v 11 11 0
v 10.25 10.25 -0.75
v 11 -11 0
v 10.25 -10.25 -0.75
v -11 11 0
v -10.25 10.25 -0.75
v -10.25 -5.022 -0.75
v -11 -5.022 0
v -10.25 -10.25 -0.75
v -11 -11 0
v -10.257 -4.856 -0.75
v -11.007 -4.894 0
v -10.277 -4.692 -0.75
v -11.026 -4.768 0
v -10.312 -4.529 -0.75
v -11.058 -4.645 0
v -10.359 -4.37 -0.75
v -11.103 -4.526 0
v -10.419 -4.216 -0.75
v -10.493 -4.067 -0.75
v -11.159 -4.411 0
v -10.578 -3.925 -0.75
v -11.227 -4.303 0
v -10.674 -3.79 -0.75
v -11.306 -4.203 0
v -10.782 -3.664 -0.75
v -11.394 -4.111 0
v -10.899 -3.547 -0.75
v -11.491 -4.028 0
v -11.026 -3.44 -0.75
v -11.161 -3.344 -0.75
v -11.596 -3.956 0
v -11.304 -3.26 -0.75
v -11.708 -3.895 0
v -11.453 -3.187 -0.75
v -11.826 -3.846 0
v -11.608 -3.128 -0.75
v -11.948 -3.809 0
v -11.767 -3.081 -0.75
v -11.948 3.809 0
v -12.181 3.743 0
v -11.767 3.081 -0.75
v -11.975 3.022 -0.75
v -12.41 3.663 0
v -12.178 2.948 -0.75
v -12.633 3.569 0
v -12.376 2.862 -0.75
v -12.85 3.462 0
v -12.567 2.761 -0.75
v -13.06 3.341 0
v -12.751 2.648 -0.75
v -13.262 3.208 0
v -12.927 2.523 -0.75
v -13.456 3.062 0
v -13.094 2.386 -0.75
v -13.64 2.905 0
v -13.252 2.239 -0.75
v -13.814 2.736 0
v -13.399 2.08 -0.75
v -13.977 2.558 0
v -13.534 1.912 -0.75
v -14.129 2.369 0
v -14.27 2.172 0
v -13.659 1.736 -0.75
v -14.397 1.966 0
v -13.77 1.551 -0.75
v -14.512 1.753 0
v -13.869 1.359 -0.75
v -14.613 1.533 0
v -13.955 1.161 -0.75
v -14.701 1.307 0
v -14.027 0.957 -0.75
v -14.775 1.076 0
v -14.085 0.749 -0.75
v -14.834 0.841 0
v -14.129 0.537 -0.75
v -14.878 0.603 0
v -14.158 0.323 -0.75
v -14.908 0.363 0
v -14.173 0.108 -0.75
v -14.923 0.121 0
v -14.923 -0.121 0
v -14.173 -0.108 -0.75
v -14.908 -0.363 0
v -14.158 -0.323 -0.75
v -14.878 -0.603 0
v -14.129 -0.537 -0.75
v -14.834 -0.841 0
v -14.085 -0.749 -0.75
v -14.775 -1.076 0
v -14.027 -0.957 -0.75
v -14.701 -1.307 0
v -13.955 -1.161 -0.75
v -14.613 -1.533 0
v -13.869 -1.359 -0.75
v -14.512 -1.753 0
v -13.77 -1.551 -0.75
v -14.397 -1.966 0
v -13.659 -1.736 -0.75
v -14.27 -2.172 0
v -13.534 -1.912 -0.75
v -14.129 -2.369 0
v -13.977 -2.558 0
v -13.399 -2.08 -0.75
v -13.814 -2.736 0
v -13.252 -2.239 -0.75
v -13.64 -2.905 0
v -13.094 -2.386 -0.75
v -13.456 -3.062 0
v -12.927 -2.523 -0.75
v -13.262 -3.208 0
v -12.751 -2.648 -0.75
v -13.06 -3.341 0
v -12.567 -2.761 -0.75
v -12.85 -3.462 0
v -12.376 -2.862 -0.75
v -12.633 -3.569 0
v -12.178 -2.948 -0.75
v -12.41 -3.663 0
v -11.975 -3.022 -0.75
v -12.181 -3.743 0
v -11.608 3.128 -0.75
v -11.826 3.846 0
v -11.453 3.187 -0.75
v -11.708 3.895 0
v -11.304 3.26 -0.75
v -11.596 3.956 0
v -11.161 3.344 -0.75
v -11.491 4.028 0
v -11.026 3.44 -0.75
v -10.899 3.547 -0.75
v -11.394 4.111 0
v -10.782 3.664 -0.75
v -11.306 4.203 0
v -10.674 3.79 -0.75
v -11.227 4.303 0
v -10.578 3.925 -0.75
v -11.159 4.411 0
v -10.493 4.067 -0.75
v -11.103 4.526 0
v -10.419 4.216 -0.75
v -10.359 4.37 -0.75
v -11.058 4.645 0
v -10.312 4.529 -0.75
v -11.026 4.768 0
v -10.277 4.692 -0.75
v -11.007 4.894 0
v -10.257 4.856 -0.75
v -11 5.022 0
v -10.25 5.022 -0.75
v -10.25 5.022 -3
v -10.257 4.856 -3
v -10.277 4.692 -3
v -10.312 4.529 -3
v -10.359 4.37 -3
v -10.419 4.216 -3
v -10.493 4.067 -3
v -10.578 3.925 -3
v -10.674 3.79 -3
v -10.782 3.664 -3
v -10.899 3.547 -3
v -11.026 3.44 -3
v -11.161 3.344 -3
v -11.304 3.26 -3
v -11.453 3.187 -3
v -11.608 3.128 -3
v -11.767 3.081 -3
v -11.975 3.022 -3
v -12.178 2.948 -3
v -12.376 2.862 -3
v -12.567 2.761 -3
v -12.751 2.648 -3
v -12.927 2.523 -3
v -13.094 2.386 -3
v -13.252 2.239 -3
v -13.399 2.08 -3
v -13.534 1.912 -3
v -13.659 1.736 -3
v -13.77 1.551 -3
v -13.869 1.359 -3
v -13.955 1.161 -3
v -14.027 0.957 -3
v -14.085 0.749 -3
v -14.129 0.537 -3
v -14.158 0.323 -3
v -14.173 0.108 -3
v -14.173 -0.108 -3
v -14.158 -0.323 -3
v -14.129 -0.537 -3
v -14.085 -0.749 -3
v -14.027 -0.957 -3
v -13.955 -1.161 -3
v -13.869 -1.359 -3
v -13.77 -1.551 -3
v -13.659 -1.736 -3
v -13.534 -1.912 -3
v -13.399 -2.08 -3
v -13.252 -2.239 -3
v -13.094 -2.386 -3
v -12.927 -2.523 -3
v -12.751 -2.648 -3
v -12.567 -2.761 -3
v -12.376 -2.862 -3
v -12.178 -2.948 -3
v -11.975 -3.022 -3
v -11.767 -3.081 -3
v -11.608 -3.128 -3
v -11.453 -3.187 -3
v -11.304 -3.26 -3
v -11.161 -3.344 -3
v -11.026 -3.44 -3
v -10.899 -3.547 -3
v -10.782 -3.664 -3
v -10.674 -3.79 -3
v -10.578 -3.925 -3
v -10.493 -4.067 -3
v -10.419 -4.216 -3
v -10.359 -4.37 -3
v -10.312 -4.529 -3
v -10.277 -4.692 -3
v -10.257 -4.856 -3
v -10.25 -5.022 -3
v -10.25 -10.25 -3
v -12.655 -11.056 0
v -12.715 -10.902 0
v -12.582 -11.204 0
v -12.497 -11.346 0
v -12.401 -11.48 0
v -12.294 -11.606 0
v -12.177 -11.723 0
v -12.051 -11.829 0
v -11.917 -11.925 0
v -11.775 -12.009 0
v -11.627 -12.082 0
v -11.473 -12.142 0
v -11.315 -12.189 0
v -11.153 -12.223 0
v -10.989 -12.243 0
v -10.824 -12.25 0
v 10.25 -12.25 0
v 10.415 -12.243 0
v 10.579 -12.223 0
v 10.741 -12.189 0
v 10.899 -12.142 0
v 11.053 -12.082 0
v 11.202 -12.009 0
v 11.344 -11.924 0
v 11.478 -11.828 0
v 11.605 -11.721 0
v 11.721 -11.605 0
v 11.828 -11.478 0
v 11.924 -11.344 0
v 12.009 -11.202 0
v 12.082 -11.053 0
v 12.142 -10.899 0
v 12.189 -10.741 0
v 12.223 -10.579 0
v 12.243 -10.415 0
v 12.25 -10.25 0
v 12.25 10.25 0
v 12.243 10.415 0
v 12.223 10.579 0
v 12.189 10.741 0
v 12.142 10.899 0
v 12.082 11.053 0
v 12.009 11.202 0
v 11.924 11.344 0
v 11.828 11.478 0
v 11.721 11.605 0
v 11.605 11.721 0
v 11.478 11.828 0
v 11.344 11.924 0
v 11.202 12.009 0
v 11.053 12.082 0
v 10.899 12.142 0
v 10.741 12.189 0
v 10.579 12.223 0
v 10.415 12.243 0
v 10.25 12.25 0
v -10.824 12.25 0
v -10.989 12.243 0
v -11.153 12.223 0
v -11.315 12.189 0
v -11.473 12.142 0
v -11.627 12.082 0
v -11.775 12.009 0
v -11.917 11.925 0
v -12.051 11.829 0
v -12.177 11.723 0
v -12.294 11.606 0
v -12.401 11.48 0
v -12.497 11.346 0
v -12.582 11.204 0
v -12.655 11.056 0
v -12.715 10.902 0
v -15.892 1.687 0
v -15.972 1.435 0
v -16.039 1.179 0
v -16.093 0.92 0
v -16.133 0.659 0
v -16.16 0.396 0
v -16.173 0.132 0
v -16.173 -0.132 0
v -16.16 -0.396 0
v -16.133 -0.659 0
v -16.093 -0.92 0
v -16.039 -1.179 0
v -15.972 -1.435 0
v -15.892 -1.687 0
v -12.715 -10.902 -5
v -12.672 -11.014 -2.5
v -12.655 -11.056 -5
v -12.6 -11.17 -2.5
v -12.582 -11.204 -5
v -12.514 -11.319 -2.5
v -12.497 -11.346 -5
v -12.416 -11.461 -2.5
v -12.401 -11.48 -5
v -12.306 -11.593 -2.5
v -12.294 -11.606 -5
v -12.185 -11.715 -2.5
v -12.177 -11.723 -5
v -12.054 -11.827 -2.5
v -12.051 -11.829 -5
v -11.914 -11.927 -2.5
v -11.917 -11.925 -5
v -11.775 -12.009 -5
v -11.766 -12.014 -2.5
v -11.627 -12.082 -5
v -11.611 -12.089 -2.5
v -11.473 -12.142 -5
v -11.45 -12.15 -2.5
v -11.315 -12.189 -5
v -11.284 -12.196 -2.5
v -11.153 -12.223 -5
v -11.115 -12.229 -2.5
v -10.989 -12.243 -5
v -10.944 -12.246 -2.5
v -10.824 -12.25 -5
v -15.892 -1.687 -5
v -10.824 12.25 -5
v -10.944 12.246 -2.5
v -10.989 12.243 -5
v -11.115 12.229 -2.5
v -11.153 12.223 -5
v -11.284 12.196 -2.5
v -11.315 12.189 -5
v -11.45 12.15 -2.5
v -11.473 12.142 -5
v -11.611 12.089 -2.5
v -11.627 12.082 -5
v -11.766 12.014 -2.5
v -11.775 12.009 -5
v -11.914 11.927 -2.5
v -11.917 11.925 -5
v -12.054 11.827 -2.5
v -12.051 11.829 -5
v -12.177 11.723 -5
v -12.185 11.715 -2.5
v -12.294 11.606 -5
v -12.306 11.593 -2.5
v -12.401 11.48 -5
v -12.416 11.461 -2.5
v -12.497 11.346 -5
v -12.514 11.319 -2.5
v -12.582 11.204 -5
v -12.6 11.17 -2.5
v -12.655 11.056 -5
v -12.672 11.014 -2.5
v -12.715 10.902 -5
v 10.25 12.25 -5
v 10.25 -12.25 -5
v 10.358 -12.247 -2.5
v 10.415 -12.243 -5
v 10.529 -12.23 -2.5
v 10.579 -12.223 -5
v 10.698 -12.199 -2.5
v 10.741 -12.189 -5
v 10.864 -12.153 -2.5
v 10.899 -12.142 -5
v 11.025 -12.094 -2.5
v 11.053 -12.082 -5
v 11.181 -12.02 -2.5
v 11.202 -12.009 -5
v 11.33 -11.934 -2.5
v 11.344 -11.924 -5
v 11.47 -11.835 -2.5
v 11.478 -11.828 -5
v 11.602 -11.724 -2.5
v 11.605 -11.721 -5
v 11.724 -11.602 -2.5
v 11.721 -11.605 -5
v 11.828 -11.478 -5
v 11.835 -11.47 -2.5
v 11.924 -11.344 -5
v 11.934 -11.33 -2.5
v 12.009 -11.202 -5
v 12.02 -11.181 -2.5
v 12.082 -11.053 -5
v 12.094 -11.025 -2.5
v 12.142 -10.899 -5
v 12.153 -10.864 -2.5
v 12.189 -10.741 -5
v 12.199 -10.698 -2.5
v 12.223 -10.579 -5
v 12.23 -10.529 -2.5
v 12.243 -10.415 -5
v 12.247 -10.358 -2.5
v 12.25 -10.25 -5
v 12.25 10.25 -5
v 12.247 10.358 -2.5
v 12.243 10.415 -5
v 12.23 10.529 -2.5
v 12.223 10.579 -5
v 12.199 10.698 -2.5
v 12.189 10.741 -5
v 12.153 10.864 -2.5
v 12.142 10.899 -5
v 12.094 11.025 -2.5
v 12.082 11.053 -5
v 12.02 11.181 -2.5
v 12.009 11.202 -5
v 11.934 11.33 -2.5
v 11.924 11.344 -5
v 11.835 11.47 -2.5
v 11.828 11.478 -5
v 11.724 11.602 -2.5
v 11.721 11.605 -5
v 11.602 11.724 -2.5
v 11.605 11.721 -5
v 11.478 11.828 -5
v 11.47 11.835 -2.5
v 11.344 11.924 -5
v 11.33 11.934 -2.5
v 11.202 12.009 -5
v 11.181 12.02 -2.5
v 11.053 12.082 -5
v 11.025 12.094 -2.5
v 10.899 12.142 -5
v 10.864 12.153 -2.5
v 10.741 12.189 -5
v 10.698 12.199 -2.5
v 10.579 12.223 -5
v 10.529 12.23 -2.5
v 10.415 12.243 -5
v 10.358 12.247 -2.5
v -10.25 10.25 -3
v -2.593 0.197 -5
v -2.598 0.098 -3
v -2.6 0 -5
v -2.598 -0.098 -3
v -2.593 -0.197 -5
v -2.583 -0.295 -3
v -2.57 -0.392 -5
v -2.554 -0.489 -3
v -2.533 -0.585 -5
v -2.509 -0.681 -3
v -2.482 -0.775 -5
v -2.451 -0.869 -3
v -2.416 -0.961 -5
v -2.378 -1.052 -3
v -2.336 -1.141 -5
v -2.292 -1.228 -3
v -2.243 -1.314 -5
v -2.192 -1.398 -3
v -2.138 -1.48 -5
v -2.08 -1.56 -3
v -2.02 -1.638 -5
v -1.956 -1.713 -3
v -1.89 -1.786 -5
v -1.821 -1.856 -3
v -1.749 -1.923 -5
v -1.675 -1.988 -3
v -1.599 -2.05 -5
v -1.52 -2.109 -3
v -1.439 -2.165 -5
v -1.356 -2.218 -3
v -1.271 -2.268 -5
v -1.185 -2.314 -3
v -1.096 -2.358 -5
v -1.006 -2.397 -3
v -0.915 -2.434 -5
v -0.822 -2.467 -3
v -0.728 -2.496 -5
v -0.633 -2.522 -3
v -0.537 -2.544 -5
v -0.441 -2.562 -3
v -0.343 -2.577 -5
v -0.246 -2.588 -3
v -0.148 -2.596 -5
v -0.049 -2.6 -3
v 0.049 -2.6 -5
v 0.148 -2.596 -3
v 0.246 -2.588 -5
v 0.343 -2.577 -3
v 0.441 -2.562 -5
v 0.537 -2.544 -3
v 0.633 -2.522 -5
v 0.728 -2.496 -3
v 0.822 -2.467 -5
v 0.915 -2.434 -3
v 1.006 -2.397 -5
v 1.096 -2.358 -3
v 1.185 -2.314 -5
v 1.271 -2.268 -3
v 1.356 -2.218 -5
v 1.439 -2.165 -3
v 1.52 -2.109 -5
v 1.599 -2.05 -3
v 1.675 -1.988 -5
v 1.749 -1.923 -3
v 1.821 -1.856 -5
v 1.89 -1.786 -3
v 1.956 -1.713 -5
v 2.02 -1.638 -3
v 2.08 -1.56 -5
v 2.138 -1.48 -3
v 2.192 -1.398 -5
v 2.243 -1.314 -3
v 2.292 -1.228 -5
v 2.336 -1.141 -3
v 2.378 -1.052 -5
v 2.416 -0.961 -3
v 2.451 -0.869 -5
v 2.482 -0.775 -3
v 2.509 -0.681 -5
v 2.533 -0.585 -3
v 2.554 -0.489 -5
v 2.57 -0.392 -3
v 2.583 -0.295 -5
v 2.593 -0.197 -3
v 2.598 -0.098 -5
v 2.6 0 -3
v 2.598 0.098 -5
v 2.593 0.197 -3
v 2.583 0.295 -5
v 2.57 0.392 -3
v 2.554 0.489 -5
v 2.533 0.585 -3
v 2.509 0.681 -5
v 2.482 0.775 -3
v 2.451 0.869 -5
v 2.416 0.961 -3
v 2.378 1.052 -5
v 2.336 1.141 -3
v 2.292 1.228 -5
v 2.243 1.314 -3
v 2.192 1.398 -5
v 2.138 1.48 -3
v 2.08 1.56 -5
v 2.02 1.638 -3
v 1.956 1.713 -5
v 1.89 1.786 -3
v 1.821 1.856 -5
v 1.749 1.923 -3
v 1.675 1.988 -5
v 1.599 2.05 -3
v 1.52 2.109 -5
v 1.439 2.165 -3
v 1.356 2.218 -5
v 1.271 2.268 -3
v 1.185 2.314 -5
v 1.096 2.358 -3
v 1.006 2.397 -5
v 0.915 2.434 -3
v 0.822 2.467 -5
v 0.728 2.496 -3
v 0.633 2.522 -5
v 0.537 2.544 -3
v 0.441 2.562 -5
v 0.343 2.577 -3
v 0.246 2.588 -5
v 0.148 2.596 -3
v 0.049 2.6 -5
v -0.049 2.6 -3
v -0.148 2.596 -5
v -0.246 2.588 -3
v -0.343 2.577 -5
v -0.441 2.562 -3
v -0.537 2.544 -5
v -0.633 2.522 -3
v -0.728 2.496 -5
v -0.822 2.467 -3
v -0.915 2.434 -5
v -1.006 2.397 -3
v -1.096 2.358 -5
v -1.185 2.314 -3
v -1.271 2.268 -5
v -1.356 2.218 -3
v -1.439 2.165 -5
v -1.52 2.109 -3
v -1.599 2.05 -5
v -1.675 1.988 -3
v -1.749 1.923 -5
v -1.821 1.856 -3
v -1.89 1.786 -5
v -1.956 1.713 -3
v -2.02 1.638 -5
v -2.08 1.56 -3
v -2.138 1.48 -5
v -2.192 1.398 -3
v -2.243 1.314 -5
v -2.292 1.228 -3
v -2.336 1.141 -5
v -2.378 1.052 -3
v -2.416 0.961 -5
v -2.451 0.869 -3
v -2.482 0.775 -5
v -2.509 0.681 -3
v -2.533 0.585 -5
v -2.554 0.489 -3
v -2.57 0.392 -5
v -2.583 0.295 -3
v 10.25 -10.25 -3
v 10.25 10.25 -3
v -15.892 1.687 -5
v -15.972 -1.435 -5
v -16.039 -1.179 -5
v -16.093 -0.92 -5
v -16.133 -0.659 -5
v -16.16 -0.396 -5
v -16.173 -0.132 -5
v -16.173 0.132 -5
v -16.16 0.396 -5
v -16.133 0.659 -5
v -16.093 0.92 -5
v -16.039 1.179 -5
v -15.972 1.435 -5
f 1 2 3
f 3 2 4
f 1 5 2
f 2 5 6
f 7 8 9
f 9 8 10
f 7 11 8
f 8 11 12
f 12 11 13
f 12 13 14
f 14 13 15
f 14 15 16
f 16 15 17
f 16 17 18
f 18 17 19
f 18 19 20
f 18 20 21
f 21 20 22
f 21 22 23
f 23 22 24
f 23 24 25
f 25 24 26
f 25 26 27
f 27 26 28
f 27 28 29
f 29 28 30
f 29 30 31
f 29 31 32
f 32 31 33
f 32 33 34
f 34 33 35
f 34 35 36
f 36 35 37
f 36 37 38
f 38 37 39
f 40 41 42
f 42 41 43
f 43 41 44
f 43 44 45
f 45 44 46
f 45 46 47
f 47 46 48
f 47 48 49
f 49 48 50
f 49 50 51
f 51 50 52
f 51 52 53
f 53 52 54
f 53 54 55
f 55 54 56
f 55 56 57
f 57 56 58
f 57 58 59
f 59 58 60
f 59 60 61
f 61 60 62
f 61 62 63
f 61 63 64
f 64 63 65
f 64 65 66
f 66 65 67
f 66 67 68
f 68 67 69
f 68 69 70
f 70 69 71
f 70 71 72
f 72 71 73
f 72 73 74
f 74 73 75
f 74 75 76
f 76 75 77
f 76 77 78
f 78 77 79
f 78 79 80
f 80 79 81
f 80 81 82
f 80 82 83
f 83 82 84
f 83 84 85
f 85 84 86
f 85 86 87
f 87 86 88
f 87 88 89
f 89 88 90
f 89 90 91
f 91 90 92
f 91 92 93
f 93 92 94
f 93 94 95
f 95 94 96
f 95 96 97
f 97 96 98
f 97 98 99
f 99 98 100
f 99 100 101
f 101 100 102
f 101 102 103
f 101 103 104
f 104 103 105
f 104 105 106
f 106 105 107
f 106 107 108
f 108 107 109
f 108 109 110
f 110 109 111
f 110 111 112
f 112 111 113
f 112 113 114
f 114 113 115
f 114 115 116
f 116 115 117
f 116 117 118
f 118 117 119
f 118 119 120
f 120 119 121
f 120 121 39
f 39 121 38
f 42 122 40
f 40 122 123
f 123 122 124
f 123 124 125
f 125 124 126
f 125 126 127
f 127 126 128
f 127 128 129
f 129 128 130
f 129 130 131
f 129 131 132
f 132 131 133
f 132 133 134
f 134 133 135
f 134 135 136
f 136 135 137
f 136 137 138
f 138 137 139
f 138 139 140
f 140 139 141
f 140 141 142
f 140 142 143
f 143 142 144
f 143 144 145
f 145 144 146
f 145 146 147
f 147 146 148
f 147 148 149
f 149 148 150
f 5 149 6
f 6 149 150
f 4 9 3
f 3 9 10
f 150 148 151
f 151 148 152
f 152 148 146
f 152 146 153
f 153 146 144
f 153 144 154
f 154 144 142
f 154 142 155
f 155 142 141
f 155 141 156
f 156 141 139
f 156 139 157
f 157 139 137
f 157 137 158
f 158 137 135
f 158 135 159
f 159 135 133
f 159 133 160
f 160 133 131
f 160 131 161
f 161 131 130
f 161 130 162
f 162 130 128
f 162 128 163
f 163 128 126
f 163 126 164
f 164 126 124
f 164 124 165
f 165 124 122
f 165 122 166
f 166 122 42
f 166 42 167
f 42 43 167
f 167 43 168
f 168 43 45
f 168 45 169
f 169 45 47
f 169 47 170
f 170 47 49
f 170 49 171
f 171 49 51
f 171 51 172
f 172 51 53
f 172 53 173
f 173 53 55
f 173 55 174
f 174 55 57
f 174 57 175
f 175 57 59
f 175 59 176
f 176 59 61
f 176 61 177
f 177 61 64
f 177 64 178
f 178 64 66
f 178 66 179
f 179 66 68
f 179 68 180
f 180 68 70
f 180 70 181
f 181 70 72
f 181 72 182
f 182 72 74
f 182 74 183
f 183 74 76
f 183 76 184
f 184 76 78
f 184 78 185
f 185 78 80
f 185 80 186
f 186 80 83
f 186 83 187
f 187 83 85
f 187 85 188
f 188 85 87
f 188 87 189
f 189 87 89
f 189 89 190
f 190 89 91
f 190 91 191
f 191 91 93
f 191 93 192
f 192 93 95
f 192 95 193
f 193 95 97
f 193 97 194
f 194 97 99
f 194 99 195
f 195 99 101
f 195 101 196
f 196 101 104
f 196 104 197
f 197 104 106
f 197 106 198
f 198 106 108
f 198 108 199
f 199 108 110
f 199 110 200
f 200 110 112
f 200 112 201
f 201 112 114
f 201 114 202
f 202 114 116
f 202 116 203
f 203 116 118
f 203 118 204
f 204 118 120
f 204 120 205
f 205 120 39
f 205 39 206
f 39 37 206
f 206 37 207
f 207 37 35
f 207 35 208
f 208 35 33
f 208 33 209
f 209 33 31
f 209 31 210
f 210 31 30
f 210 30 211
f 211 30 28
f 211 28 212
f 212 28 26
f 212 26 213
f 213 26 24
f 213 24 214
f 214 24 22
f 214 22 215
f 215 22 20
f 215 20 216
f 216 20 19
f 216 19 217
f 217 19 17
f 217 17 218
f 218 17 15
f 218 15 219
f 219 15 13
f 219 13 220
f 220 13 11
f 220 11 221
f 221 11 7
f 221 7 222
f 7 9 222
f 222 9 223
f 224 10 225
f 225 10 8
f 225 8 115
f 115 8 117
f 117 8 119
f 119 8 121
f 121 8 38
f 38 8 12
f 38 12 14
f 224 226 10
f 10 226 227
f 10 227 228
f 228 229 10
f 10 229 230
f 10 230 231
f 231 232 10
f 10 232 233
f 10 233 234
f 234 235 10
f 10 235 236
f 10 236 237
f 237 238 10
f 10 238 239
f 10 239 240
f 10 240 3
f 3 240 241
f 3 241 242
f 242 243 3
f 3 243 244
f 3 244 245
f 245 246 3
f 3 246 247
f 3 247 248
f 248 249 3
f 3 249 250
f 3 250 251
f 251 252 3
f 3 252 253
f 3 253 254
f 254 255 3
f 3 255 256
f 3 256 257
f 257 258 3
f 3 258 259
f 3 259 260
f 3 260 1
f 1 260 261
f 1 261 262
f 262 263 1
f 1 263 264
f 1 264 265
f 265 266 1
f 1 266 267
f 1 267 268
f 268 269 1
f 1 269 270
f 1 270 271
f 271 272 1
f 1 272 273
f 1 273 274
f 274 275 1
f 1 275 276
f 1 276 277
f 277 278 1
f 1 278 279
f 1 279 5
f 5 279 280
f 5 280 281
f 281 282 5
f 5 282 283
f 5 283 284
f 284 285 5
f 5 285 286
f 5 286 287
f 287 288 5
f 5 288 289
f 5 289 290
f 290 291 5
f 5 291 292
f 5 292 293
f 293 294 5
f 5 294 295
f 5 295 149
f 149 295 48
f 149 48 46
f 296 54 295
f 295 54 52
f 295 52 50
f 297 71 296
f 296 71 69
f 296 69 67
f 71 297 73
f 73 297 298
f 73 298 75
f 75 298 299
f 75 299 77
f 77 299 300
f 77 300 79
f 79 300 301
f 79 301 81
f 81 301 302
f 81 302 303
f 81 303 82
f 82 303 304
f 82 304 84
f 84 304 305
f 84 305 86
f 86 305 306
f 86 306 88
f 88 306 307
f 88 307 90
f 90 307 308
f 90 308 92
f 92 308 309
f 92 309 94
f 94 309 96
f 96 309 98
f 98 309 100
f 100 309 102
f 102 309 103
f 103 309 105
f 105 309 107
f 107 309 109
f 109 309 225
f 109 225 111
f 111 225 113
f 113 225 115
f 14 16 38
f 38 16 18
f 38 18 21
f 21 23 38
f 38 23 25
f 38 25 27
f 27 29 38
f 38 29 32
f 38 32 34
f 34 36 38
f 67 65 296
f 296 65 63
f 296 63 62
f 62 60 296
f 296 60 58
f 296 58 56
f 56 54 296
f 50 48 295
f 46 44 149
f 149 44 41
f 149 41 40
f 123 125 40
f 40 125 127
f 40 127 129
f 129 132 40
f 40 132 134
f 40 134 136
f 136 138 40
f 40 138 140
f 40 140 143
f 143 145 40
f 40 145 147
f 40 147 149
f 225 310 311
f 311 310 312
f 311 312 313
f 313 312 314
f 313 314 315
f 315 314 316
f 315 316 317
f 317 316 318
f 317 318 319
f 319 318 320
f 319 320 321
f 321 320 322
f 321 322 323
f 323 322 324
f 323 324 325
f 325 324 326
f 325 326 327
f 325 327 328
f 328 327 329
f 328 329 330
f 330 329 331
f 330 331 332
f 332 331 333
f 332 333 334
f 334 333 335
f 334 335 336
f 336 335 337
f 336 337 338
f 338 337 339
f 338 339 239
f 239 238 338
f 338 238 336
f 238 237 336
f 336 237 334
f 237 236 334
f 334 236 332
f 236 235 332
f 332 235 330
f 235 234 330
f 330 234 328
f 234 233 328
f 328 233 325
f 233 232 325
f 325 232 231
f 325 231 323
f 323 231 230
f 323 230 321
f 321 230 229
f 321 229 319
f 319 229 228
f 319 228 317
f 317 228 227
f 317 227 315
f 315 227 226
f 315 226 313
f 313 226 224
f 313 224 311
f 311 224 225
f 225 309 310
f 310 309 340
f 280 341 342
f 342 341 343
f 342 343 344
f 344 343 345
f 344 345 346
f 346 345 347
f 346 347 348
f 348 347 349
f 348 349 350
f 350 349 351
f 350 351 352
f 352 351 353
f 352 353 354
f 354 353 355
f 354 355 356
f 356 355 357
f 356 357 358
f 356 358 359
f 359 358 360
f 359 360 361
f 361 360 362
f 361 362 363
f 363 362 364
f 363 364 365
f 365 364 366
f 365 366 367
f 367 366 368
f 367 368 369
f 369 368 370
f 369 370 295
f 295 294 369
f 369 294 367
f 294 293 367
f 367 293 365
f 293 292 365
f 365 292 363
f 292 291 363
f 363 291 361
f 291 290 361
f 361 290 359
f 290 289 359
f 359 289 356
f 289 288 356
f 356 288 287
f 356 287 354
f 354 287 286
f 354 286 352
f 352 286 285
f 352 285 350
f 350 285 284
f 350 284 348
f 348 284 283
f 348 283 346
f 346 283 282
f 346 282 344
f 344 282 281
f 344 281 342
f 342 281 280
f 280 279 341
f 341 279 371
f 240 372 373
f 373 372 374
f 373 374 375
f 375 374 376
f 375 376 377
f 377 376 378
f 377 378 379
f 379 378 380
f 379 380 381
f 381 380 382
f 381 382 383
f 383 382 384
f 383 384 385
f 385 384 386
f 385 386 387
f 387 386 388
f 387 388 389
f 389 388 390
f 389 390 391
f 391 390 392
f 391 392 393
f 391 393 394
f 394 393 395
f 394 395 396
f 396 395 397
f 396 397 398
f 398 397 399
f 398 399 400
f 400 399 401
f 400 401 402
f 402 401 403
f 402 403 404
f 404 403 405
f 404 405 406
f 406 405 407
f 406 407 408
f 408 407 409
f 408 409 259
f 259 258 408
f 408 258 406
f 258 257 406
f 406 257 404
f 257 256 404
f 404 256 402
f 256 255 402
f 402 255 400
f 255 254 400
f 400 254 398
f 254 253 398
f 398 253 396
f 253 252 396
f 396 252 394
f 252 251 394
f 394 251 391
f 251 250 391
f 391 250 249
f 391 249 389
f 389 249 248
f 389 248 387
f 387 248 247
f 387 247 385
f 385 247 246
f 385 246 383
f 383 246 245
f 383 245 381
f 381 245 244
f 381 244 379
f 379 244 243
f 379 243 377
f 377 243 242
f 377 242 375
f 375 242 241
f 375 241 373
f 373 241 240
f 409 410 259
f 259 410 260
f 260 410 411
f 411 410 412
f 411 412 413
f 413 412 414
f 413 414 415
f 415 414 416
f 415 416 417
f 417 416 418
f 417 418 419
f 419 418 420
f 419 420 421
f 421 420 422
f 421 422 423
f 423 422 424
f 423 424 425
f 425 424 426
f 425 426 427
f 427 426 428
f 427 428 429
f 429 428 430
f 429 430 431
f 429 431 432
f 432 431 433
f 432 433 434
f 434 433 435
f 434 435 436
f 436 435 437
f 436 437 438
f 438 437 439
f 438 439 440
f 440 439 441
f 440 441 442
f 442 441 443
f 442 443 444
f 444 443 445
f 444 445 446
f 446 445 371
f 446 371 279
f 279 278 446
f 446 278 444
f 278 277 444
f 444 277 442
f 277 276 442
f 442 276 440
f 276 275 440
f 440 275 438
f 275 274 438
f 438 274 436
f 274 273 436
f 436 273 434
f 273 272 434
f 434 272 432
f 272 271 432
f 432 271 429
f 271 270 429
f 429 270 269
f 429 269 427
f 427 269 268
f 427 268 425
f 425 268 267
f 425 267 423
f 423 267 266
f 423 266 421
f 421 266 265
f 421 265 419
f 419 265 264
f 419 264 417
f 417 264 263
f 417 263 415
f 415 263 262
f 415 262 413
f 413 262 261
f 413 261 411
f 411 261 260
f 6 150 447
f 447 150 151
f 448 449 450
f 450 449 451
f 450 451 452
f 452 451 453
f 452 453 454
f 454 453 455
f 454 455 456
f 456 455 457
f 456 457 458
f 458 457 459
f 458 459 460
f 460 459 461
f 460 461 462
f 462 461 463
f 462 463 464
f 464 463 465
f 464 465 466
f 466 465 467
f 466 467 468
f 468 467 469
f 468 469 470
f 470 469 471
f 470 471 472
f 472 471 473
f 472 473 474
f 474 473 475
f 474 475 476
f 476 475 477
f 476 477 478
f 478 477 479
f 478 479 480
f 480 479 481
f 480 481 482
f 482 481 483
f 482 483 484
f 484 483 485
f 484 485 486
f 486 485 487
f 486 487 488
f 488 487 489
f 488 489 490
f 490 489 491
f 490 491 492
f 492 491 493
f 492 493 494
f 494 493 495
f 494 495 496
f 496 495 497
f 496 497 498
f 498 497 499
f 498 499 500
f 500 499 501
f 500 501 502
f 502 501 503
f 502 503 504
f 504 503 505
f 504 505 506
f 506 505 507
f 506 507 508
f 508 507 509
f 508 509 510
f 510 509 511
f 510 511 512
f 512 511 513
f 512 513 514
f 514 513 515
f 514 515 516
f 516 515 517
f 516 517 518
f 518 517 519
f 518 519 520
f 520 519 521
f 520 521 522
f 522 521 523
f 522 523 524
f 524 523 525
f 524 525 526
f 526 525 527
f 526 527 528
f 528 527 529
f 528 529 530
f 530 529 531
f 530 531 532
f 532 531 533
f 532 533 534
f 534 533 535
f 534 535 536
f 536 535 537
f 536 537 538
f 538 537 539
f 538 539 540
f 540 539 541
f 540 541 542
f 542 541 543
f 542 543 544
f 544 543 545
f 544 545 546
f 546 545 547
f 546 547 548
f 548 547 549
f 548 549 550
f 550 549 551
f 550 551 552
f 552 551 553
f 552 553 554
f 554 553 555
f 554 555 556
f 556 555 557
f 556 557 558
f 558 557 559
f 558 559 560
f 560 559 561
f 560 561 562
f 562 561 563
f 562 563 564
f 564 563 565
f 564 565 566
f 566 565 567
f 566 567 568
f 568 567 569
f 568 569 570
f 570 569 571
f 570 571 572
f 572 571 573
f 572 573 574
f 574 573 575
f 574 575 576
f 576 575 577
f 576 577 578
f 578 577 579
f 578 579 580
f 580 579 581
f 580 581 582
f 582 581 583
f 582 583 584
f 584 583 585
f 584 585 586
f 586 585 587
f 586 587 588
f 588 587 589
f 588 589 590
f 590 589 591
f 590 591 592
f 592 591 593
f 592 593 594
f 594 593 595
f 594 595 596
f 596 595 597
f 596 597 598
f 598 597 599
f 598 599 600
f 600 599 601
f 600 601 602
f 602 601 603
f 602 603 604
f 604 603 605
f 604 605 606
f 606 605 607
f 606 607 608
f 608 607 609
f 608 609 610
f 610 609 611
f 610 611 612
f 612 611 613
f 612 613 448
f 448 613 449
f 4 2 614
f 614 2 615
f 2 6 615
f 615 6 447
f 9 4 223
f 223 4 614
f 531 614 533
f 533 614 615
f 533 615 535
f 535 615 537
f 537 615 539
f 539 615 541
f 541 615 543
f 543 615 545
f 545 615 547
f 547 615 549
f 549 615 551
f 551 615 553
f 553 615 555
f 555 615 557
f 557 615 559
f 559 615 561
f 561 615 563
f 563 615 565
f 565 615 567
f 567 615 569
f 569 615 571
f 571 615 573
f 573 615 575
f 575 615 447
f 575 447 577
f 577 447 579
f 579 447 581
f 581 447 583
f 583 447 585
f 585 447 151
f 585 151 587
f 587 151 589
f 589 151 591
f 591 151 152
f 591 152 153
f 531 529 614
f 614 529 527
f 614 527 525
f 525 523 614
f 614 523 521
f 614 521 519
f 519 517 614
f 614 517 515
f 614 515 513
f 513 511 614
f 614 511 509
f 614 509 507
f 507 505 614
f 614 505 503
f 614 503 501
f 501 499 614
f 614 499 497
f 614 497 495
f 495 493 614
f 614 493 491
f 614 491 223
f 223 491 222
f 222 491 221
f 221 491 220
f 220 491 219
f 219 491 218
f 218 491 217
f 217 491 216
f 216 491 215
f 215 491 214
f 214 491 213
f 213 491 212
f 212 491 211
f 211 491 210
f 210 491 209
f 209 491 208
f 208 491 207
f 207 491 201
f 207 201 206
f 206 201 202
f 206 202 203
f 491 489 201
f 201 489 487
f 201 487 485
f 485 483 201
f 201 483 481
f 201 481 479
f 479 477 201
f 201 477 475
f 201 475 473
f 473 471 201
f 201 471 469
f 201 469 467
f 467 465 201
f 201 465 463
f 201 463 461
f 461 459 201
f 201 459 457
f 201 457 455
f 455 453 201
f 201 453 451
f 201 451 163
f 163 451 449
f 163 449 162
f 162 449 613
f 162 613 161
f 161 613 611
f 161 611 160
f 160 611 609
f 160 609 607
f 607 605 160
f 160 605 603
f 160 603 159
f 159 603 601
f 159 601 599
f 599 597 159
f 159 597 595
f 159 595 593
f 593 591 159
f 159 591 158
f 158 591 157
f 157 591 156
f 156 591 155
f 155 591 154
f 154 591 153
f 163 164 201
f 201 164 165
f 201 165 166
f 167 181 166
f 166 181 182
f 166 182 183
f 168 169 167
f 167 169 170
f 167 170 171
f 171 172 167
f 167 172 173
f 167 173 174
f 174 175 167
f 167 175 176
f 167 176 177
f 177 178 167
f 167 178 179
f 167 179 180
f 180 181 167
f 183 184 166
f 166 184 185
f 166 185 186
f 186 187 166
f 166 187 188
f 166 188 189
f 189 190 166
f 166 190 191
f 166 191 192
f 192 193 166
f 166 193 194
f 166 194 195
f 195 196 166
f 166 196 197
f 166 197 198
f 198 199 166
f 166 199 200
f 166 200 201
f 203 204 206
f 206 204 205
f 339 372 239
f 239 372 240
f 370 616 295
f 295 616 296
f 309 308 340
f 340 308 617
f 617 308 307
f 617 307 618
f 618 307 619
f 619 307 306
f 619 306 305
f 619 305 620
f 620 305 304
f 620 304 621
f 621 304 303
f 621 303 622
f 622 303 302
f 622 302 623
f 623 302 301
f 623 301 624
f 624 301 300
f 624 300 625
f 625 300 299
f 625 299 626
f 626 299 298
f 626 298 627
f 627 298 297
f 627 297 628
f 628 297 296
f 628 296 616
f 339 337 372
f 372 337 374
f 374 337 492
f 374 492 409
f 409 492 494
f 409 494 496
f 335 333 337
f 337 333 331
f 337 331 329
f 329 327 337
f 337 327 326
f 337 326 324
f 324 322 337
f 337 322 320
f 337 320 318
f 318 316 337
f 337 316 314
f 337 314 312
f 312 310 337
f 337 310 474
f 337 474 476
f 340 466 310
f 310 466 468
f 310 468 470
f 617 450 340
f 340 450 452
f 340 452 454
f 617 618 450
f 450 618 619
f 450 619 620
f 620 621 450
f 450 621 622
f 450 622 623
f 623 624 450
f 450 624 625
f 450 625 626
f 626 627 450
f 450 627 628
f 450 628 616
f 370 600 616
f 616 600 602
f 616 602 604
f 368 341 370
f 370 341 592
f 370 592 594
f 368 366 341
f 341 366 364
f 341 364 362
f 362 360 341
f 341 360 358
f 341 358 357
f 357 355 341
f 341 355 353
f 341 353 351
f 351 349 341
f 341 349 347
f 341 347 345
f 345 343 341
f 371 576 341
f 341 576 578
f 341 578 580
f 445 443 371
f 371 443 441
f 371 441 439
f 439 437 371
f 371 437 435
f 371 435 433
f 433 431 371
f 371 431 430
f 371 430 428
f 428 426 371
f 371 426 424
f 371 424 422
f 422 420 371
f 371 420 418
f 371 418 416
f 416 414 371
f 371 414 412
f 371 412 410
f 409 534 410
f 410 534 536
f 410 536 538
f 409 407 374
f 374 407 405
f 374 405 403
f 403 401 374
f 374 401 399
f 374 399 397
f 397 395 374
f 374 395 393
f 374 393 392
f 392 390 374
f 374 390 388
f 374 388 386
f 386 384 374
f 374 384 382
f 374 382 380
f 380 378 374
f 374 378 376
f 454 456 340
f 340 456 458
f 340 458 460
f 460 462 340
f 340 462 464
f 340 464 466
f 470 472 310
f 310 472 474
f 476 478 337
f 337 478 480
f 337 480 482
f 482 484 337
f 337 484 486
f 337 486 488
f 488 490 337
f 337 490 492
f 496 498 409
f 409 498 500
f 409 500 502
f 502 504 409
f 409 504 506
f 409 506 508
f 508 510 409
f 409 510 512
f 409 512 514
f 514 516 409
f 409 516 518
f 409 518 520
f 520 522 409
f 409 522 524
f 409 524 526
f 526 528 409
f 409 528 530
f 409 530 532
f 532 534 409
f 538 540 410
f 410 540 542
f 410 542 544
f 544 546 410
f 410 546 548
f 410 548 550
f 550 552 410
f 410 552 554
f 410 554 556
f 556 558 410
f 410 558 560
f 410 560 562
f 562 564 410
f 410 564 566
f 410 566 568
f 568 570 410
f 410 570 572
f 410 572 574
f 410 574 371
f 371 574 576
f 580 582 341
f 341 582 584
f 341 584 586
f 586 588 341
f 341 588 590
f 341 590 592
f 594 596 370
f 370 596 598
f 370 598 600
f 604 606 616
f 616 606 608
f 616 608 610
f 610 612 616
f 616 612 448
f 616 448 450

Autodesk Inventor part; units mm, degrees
ref_plane "YZ Plane" through (0, 0, 0) normal (1, 0, 0) x (0, 1, 0)
ref_plane "XZ Plane" through (0, 0, 0) normal (0, 1, 0) x (-1, 0, 0)
ref_plane "XY Plane" through (0, 0, 0) normal (0, 0, 1) x (1, 0, 0)
sketch "Sketch1" plane through (0, 0, 0) normal (0, 0, 1) x (1, 0, 0)
  line L0 (-10.25, -10.25) -> (10.25, -10.25)
  line L1 (10.25, -10.25) -> (10.25, 10.25)
  line L2 (10.25, 10.25) -> (-10.25, 10.25)
  line L3 (-10.25, 10.25) -> (-10.25, -10.25)
  line L4 (-10.25, -10.25) -> (10.25, 10.25) construction
  line L5 (10.25, -10.25) -> (-10.25, 10.25) construction
  circle A0 centre (-11, 0) radius 3.175
  arc A1 (-15.8923, 1.687) -> (-15.8923, -1.687) centre (-11, 0) ccw
  line L6 (-12.25, 12.25) -> (12.25, 12.25)
  line L7 (12.25, 12.25) -> (12.25, -12.25)
  line L8 (12.25, -12.25) -> (-12.25, -12.25)
  line L9 (-15.8923, 1.687) -> (-12.25, 12.25)
  line L10 (-15.8923, -1.687) -> (-12.25, -12.25)
  point P0 (0, 0)
  point P1 (0, 0)
  point P2 (-10.25, -3.0851)
  point P3 (-10.25, 3.0851)
  dimension "d0" = 20.5
  dimension "d1" = 20.5
  dimension "d3" = 6.35
  dimension "d4" = 11
  dimension "d5" = 2
  dimension "d6" = 2
  dimension "d7" = 2
  dimension "d8" = 2
  dimension "d10" = 2
  dimension "d11" = 2
extrude "Extrusion1" add sketch "Sketch1" against normal blind 5 contours L3 A0 L2 L1 L0 | A0 L3 | L3 A0 | L9 L6 L7 L8 L10 A1
extrude "Extrusion2" cut sketch "Sketch1" against normal blind 3 contours L3 A0 L2 L1 L0 | A0 L3 | L3 A0
sketch "Sketch2" plane through (0, 0, -3) normal (0, 0, 1) x (1, 0, 0)
  circle A0 centre (0, 0) radius 2.6
  dimension "d16" = 5.2
extrude "Extrusion3" cut sketch "Sketch2" against normal blind 10
fillet "Fillet1" radius 2 6 edges at (-10.25, 3.0851, -1.5) (-10.25, -3.0851, -1.5) (12.25, 12.25, -2.5) (12.25, -12.25, -2.5) (-12.25, 12.25, -2.5) (-12.25, -12.25, -2.5)
chamfer "Chamfer1" distance 0.75 angle 45 8 edges at (-10.25, 7.6359, 0) (-10.6742, 3.7901, 0) (-14.175, 0, 0) (-10.6742, -3.7901, 0) (-10.25, -7.6359, 0) (0, 10.25, 0) (10.25, 0, 0) (0, -10.25, 0)
properties part number "Y-Axis_Extrusion_Cap_LM3040" material "ABS Plastic"
